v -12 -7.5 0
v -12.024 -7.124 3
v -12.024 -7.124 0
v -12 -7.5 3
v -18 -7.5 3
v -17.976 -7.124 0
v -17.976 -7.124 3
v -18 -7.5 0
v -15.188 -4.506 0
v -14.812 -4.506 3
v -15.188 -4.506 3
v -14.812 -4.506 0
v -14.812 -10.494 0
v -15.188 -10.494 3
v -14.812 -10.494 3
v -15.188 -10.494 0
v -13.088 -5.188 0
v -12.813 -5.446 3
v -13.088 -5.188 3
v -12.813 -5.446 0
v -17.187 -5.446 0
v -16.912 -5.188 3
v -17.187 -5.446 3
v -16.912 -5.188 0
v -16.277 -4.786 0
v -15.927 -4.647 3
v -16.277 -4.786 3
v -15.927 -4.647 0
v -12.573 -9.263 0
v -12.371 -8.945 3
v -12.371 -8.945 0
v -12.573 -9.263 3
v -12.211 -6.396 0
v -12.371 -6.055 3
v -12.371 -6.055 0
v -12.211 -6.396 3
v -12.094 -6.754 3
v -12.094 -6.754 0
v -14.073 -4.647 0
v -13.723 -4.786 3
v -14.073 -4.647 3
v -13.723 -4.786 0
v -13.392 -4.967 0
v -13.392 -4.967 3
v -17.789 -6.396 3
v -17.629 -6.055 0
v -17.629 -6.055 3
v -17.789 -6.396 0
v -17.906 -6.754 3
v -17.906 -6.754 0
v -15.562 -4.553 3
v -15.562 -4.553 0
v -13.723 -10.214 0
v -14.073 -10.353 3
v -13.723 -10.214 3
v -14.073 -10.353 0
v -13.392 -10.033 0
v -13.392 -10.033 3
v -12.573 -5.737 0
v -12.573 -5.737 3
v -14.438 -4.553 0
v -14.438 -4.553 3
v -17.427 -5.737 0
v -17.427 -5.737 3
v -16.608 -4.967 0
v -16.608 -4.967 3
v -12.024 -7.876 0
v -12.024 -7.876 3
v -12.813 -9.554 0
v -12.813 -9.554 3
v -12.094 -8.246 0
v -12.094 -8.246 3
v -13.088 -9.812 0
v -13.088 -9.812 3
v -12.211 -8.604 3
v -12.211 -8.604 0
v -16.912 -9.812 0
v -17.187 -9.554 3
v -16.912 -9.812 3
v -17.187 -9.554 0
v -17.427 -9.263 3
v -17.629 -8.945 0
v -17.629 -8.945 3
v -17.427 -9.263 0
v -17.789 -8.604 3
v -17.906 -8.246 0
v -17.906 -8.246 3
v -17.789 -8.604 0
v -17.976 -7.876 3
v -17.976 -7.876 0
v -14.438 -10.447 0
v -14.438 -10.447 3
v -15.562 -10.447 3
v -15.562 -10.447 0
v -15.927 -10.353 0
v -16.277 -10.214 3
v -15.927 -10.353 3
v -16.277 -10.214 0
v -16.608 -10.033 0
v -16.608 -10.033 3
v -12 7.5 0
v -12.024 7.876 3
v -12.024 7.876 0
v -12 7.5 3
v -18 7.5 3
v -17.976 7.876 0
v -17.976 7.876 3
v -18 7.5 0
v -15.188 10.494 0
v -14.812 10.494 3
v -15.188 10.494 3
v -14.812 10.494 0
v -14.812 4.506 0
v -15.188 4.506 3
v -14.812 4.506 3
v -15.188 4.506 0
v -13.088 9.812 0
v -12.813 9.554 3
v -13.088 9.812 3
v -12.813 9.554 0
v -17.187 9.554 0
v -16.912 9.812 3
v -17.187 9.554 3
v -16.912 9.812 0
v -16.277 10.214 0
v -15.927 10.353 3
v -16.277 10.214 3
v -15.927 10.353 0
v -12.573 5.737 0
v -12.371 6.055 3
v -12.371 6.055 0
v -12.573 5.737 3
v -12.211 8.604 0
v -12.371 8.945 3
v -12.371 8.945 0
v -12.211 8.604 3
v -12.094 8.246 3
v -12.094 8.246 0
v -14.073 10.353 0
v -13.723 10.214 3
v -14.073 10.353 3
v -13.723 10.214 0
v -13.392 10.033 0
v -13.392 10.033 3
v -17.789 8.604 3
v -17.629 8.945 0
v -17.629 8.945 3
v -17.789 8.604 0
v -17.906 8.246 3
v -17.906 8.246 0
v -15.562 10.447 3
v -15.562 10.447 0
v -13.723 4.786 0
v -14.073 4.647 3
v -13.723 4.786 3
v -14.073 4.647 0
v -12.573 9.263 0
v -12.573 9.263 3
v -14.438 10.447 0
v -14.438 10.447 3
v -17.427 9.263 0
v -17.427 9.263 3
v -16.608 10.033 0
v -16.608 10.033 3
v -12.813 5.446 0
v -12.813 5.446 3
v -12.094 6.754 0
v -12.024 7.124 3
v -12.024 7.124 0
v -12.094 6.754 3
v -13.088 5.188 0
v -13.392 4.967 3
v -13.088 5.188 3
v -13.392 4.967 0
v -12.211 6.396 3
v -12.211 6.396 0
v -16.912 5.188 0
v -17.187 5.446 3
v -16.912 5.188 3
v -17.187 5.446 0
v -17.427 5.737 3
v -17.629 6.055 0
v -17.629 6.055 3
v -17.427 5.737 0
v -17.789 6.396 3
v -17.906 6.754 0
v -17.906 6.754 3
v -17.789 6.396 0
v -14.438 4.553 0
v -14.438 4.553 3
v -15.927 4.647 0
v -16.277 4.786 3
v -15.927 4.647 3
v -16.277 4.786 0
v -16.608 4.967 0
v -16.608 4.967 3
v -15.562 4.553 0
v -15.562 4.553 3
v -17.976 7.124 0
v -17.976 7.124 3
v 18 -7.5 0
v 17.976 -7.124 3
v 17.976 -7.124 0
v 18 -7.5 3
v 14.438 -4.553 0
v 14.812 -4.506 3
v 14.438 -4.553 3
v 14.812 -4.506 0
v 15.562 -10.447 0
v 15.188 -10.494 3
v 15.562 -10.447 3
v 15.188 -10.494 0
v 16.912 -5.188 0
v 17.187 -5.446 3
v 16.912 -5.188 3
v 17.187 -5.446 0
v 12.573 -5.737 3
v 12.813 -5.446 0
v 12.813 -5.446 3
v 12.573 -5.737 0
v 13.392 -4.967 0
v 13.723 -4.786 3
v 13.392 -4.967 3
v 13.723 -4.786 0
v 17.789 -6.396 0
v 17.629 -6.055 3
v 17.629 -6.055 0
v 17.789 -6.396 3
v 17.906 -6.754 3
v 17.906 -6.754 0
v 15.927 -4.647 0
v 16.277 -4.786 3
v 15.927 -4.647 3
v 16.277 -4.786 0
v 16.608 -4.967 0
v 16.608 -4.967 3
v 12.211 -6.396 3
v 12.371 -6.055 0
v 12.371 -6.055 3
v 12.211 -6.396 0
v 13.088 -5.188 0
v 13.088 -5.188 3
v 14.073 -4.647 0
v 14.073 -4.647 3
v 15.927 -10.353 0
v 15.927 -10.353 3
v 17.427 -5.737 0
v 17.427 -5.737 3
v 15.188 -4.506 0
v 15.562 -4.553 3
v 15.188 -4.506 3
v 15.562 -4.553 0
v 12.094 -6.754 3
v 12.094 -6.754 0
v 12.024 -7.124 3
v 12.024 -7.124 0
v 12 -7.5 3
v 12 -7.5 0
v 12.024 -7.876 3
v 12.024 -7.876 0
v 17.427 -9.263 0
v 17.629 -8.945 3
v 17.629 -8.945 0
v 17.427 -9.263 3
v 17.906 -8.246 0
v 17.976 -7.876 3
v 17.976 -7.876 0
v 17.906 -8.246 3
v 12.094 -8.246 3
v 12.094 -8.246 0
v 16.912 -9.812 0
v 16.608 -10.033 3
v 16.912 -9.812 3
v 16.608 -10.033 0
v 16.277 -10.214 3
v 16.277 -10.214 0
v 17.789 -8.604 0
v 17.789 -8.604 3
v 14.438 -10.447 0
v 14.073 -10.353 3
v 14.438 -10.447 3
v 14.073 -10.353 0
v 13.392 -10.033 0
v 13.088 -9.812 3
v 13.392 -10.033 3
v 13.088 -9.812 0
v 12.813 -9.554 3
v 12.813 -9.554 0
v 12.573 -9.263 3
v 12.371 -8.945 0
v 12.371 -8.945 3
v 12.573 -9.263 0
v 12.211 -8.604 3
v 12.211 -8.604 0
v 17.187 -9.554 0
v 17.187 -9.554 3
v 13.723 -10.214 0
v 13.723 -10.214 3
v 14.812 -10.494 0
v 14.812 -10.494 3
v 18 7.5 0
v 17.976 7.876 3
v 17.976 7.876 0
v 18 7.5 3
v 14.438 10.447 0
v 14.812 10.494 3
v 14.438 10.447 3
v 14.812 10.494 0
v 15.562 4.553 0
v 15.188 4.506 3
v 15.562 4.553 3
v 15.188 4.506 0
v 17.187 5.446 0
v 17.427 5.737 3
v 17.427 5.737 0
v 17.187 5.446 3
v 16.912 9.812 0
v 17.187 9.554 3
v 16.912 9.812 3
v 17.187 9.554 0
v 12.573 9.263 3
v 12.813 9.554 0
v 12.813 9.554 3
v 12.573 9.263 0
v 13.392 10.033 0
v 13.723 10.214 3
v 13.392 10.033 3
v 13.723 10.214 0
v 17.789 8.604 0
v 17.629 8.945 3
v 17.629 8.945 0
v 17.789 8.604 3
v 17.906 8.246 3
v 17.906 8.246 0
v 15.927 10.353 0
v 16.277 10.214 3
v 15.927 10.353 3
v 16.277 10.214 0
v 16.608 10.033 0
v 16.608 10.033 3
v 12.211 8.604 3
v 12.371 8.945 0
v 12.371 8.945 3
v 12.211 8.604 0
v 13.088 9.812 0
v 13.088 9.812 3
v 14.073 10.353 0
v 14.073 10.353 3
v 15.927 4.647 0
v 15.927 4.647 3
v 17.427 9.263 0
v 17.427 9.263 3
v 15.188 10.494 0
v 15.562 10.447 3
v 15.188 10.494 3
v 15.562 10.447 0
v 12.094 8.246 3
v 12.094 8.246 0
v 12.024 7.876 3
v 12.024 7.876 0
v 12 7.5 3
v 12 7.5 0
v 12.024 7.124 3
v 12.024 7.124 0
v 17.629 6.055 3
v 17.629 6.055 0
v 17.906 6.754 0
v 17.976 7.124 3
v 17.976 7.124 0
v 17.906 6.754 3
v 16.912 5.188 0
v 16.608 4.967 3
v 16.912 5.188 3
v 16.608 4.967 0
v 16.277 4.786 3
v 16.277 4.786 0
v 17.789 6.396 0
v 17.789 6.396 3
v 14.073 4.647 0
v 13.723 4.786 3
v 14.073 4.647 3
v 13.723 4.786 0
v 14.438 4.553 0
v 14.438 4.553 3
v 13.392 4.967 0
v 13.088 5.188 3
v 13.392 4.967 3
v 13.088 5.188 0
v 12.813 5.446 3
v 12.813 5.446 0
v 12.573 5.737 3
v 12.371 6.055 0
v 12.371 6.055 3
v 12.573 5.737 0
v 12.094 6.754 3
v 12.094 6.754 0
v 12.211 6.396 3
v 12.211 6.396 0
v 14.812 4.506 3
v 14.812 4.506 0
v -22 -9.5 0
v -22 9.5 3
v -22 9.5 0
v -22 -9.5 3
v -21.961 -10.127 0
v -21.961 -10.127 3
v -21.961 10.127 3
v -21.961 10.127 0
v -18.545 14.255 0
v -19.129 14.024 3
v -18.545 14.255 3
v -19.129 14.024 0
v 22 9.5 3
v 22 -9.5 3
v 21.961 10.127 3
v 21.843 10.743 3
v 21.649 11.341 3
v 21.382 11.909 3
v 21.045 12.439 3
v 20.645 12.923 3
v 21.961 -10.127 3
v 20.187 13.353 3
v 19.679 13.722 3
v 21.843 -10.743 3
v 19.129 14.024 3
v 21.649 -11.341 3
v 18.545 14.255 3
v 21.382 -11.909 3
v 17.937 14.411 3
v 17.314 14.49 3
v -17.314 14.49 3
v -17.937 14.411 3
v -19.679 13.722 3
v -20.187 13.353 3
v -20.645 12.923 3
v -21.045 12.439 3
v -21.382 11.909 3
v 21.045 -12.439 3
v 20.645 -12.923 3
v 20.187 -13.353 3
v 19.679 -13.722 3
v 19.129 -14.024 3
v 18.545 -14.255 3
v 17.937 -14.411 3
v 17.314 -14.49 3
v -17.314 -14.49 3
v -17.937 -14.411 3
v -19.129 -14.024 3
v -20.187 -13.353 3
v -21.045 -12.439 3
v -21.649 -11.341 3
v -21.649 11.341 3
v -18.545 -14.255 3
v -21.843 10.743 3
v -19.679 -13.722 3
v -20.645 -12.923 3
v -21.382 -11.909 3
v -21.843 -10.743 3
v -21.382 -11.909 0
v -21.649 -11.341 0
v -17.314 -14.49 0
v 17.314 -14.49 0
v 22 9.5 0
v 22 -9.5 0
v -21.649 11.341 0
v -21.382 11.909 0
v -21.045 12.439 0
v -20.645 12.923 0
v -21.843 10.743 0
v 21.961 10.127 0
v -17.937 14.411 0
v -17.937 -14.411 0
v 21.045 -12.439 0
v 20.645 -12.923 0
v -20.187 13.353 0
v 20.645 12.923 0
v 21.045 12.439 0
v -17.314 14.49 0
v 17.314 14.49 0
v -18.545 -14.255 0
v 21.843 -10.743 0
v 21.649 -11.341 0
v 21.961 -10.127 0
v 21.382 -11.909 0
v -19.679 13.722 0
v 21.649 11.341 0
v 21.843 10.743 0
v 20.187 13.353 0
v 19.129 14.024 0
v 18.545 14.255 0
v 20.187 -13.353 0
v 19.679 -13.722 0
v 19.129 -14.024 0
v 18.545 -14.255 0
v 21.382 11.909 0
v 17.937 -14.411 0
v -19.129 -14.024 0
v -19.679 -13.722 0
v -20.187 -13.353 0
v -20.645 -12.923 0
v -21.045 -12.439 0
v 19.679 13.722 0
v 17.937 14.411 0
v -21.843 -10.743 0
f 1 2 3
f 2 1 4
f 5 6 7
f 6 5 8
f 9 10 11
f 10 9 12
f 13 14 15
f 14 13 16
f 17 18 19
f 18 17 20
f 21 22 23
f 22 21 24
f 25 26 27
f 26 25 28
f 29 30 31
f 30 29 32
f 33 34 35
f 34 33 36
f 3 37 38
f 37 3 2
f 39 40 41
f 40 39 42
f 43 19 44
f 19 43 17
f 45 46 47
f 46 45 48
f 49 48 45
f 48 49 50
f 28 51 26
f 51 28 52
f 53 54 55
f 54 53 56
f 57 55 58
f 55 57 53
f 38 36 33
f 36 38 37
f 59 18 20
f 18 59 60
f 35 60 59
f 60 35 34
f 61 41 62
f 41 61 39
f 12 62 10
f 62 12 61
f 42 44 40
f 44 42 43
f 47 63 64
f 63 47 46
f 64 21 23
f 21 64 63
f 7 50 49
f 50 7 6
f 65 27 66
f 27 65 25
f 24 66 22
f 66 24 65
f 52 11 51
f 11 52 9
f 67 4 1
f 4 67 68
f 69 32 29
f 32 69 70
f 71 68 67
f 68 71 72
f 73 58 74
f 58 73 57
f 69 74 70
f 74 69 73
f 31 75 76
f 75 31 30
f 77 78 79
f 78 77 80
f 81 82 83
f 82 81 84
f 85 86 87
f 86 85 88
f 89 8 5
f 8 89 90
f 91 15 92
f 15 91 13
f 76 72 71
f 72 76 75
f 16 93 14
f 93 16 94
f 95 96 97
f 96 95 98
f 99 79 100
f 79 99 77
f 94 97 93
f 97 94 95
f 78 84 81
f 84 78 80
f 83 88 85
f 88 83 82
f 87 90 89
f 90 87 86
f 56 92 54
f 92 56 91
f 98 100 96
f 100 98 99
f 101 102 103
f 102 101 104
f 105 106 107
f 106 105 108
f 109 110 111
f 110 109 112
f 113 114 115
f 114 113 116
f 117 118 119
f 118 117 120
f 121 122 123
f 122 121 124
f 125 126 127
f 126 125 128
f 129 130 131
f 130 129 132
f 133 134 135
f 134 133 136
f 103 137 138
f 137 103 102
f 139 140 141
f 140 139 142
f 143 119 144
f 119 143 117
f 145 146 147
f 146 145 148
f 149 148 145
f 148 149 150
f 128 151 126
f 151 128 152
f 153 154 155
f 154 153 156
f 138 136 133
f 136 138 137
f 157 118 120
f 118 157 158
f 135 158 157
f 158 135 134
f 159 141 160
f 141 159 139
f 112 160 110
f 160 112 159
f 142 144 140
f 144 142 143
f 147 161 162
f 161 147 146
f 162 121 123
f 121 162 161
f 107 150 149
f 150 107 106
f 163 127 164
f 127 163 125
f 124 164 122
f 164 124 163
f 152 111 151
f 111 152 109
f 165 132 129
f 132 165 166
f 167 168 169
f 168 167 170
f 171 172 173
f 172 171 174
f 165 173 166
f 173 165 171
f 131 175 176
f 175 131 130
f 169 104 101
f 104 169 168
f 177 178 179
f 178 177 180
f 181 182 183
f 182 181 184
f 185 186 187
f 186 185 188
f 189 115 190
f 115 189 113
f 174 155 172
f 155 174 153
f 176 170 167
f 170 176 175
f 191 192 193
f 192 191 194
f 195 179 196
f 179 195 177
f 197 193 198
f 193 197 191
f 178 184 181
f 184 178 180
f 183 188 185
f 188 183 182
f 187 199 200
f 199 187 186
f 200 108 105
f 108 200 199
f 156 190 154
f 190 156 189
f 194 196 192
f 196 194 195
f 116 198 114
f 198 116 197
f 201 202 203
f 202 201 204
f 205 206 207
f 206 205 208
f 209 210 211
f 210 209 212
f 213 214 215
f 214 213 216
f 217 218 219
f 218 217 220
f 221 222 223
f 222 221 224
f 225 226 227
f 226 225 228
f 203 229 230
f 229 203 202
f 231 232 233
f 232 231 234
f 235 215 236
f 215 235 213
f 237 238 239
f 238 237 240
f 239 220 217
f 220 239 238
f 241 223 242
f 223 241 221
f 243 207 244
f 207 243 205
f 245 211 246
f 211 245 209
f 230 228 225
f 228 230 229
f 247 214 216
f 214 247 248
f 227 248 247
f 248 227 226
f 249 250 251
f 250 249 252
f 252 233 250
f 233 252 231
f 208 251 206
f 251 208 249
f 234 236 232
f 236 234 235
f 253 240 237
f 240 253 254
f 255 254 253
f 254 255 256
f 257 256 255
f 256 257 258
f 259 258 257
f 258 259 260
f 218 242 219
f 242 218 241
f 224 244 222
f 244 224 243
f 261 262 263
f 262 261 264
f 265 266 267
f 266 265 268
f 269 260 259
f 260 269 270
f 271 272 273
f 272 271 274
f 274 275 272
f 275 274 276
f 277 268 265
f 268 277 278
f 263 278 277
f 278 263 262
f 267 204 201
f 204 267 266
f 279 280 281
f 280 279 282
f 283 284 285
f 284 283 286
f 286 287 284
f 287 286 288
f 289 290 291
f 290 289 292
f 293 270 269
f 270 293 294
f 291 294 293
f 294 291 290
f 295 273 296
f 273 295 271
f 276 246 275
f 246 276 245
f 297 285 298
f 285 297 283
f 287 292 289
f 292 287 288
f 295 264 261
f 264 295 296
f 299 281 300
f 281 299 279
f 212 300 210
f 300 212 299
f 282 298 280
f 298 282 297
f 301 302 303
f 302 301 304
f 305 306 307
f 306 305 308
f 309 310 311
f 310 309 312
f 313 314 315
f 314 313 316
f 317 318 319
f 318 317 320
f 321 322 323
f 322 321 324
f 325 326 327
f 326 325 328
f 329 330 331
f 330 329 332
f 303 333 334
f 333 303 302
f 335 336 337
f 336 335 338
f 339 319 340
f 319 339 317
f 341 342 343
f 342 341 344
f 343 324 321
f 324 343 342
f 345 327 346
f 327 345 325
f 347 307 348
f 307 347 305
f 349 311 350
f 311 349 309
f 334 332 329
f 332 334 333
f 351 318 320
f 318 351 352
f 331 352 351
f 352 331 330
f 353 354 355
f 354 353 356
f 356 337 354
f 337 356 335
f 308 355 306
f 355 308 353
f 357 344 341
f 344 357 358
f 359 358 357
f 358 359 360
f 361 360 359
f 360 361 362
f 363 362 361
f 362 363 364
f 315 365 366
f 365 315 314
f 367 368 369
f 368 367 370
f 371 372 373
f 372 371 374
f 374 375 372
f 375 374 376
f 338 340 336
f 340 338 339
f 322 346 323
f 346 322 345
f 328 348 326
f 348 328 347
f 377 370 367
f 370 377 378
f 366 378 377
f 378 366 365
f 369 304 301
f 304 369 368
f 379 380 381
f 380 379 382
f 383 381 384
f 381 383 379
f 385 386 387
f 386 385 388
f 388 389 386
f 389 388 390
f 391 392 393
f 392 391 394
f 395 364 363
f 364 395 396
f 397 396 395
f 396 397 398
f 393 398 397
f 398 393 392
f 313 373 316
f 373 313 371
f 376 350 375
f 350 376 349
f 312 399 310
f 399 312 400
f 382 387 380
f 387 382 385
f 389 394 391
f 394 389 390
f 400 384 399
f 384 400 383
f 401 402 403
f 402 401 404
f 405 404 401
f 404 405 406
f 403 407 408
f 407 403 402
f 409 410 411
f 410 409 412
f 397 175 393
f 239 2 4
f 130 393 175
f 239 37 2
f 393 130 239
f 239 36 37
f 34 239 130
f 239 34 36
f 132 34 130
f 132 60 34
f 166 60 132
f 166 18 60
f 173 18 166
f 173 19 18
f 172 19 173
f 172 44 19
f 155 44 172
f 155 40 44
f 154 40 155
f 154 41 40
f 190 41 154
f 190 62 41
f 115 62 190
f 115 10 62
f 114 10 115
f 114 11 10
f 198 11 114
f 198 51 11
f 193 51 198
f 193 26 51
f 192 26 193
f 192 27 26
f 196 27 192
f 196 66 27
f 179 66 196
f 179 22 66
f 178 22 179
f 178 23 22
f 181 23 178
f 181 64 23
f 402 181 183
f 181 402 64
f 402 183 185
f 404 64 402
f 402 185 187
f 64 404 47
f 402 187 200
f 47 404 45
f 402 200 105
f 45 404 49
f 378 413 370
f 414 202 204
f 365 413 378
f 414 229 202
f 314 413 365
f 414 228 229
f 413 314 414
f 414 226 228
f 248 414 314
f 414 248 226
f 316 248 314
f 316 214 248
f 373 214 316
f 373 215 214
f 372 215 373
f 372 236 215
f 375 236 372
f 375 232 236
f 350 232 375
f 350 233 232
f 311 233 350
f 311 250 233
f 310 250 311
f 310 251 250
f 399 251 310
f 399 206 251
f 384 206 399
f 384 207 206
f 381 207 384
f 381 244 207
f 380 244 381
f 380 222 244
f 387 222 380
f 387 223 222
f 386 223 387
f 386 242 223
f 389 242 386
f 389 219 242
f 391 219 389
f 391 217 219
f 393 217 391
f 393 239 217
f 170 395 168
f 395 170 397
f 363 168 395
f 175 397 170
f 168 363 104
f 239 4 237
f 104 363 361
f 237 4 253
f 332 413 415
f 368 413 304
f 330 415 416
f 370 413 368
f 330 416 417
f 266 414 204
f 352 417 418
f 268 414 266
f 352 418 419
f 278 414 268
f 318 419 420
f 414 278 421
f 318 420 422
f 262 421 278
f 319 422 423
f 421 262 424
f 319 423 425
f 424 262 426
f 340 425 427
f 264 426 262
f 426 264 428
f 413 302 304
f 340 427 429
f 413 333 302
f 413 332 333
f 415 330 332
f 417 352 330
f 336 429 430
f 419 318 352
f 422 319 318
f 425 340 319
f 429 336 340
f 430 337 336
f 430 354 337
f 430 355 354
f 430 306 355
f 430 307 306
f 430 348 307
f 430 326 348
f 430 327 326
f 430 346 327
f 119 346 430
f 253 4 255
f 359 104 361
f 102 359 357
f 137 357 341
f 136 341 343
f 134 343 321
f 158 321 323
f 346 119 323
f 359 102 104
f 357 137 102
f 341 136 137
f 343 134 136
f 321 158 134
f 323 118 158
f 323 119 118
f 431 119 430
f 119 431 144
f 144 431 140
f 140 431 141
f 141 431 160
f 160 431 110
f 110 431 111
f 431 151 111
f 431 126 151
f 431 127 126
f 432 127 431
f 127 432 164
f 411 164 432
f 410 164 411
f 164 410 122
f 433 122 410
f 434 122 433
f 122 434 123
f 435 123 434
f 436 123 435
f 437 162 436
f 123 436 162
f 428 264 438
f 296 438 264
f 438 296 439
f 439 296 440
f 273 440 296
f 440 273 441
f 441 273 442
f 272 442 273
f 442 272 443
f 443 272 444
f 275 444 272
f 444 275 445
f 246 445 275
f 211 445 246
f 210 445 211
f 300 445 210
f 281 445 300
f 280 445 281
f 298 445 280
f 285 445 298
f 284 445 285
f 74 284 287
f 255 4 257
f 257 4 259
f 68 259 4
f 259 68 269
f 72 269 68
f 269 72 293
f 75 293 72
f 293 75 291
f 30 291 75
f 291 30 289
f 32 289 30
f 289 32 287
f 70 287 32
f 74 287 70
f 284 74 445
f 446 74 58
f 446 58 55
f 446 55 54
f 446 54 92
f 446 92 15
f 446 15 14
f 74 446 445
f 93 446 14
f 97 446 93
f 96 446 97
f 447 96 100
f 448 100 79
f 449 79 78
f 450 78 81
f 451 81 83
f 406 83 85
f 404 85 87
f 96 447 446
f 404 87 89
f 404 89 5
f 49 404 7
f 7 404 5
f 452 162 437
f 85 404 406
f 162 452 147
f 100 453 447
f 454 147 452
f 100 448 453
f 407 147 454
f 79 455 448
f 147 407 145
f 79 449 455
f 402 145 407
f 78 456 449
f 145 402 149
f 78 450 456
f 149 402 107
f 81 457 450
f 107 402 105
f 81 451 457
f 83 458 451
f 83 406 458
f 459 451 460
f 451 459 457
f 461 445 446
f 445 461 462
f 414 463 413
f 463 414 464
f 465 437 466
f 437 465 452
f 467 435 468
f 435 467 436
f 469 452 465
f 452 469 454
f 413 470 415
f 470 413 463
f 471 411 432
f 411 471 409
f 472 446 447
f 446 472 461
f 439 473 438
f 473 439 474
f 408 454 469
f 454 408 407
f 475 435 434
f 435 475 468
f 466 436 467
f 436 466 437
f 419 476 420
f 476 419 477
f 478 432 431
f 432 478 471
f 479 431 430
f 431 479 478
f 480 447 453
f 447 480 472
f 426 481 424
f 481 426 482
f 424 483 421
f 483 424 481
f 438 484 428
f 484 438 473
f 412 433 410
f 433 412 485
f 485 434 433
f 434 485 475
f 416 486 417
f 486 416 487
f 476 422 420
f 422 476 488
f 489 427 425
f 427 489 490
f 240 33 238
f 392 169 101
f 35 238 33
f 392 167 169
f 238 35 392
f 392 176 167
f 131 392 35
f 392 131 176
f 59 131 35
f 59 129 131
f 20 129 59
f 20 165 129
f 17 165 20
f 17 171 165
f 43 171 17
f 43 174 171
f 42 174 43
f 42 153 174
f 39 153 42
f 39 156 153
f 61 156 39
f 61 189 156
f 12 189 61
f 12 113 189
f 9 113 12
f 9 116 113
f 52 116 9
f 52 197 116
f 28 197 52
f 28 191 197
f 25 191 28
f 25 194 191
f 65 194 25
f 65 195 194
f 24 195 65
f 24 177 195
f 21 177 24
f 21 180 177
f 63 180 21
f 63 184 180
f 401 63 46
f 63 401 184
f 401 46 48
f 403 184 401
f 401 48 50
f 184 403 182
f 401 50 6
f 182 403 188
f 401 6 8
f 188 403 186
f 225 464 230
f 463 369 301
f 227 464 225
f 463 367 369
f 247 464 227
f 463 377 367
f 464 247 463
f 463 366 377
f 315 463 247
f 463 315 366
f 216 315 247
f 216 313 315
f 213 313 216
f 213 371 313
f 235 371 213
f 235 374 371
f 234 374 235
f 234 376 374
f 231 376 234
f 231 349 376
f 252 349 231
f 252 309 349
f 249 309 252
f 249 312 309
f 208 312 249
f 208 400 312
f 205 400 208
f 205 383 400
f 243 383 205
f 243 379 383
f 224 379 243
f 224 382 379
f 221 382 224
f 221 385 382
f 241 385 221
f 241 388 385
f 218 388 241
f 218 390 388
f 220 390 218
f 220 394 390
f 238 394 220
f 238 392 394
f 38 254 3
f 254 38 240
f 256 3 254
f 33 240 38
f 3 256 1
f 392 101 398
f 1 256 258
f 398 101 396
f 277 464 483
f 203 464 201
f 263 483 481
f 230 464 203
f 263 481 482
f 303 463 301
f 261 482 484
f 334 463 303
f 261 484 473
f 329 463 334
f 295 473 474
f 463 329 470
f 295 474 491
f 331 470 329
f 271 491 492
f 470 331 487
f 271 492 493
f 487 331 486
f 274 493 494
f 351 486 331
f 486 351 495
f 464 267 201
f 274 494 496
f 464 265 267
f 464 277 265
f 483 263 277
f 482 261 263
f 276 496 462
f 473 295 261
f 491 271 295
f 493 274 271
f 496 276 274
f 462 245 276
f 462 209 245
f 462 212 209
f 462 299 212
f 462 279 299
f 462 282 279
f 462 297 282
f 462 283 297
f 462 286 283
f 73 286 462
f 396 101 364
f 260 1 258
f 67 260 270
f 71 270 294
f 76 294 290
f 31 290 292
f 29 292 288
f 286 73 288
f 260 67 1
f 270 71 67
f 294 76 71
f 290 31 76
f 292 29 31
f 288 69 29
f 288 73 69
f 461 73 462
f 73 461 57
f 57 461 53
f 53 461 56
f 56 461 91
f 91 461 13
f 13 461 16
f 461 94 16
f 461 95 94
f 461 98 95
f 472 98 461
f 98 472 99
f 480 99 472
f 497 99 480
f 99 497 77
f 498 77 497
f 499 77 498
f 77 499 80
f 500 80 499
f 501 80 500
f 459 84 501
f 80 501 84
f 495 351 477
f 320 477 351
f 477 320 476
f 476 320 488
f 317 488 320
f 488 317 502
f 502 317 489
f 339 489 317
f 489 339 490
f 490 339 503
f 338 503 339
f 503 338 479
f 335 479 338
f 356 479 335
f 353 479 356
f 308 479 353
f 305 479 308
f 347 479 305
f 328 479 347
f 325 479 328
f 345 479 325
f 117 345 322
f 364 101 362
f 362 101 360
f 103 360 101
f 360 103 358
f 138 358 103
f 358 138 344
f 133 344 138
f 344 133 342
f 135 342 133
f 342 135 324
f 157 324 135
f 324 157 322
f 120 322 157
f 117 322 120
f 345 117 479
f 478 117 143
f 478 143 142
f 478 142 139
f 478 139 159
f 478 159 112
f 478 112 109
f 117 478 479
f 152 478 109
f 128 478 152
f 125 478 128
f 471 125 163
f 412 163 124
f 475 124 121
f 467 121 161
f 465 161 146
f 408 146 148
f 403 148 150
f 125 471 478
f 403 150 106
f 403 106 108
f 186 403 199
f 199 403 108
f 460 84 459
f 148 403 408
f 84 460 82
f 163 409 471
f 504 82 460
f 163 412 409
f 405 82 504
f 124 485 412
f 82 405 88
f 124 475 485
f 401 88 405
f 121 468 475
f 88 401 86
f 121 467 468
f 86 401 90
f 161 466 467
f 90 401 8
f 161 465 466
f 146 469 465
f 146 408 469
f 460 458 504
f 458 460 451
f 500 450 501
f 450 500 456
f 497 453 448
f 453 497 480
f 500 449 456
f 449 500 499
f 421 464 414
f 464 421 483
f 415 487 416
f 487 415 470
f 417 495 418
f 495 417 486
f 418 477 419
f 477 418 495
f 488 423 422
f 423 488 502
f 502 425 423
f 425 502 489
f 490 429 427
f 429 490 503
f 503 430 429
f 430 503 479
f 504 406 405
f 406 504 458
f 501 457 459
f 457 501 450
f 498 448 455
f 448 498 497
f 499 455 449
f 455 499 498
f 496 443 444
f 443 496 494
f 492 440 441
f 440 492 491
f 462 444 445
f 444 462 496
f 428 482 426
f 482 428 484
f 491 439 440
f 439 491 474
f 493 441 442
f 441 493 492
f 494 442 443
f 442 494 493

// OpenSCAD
$fn = 50;


difference() {
	union() {
		hull() {
			translate(v = [-17.0000000000, 9.5000000000, 0]) {
				cylinder(h = 3, r = 5);
			}
			translate(v = [17.0000000000, 9.5000000000, 0]) {
				cylinder(h = 3, r = 5);
			}
			translate(v = [-17.0000000000, -9.5000000000, 0]) {
				cylinder(h = 3, r = 5);
			}
			translate(v = [17.0000000000, -9.5000000000, 0]) {
				cylinder(h = 3, r = 5);
			}
		}
	}
	union() {
		translate(v = [-15.0000000000, -7.5000000000, -100.0000000000]) {
			cylinder(h = 200, r = 3.0000000000);
		}
		translate(v = [-15.0000000000, 7.5000000000, -100.0000000000]) {
			cylinder(h = 200, r = 3.0000000000);
		}
		translate(v = [15.0000000000, -7.5000000000, -100.0000000000]) {
			cylinder(h = 200, r = 3.0000000000);
		}
		translate(v = [15.0000000000, 7.5000000000, -100.0000000000]) {
			cylinder(h = 200, r = 3.0000000000);
		}
	}
}
